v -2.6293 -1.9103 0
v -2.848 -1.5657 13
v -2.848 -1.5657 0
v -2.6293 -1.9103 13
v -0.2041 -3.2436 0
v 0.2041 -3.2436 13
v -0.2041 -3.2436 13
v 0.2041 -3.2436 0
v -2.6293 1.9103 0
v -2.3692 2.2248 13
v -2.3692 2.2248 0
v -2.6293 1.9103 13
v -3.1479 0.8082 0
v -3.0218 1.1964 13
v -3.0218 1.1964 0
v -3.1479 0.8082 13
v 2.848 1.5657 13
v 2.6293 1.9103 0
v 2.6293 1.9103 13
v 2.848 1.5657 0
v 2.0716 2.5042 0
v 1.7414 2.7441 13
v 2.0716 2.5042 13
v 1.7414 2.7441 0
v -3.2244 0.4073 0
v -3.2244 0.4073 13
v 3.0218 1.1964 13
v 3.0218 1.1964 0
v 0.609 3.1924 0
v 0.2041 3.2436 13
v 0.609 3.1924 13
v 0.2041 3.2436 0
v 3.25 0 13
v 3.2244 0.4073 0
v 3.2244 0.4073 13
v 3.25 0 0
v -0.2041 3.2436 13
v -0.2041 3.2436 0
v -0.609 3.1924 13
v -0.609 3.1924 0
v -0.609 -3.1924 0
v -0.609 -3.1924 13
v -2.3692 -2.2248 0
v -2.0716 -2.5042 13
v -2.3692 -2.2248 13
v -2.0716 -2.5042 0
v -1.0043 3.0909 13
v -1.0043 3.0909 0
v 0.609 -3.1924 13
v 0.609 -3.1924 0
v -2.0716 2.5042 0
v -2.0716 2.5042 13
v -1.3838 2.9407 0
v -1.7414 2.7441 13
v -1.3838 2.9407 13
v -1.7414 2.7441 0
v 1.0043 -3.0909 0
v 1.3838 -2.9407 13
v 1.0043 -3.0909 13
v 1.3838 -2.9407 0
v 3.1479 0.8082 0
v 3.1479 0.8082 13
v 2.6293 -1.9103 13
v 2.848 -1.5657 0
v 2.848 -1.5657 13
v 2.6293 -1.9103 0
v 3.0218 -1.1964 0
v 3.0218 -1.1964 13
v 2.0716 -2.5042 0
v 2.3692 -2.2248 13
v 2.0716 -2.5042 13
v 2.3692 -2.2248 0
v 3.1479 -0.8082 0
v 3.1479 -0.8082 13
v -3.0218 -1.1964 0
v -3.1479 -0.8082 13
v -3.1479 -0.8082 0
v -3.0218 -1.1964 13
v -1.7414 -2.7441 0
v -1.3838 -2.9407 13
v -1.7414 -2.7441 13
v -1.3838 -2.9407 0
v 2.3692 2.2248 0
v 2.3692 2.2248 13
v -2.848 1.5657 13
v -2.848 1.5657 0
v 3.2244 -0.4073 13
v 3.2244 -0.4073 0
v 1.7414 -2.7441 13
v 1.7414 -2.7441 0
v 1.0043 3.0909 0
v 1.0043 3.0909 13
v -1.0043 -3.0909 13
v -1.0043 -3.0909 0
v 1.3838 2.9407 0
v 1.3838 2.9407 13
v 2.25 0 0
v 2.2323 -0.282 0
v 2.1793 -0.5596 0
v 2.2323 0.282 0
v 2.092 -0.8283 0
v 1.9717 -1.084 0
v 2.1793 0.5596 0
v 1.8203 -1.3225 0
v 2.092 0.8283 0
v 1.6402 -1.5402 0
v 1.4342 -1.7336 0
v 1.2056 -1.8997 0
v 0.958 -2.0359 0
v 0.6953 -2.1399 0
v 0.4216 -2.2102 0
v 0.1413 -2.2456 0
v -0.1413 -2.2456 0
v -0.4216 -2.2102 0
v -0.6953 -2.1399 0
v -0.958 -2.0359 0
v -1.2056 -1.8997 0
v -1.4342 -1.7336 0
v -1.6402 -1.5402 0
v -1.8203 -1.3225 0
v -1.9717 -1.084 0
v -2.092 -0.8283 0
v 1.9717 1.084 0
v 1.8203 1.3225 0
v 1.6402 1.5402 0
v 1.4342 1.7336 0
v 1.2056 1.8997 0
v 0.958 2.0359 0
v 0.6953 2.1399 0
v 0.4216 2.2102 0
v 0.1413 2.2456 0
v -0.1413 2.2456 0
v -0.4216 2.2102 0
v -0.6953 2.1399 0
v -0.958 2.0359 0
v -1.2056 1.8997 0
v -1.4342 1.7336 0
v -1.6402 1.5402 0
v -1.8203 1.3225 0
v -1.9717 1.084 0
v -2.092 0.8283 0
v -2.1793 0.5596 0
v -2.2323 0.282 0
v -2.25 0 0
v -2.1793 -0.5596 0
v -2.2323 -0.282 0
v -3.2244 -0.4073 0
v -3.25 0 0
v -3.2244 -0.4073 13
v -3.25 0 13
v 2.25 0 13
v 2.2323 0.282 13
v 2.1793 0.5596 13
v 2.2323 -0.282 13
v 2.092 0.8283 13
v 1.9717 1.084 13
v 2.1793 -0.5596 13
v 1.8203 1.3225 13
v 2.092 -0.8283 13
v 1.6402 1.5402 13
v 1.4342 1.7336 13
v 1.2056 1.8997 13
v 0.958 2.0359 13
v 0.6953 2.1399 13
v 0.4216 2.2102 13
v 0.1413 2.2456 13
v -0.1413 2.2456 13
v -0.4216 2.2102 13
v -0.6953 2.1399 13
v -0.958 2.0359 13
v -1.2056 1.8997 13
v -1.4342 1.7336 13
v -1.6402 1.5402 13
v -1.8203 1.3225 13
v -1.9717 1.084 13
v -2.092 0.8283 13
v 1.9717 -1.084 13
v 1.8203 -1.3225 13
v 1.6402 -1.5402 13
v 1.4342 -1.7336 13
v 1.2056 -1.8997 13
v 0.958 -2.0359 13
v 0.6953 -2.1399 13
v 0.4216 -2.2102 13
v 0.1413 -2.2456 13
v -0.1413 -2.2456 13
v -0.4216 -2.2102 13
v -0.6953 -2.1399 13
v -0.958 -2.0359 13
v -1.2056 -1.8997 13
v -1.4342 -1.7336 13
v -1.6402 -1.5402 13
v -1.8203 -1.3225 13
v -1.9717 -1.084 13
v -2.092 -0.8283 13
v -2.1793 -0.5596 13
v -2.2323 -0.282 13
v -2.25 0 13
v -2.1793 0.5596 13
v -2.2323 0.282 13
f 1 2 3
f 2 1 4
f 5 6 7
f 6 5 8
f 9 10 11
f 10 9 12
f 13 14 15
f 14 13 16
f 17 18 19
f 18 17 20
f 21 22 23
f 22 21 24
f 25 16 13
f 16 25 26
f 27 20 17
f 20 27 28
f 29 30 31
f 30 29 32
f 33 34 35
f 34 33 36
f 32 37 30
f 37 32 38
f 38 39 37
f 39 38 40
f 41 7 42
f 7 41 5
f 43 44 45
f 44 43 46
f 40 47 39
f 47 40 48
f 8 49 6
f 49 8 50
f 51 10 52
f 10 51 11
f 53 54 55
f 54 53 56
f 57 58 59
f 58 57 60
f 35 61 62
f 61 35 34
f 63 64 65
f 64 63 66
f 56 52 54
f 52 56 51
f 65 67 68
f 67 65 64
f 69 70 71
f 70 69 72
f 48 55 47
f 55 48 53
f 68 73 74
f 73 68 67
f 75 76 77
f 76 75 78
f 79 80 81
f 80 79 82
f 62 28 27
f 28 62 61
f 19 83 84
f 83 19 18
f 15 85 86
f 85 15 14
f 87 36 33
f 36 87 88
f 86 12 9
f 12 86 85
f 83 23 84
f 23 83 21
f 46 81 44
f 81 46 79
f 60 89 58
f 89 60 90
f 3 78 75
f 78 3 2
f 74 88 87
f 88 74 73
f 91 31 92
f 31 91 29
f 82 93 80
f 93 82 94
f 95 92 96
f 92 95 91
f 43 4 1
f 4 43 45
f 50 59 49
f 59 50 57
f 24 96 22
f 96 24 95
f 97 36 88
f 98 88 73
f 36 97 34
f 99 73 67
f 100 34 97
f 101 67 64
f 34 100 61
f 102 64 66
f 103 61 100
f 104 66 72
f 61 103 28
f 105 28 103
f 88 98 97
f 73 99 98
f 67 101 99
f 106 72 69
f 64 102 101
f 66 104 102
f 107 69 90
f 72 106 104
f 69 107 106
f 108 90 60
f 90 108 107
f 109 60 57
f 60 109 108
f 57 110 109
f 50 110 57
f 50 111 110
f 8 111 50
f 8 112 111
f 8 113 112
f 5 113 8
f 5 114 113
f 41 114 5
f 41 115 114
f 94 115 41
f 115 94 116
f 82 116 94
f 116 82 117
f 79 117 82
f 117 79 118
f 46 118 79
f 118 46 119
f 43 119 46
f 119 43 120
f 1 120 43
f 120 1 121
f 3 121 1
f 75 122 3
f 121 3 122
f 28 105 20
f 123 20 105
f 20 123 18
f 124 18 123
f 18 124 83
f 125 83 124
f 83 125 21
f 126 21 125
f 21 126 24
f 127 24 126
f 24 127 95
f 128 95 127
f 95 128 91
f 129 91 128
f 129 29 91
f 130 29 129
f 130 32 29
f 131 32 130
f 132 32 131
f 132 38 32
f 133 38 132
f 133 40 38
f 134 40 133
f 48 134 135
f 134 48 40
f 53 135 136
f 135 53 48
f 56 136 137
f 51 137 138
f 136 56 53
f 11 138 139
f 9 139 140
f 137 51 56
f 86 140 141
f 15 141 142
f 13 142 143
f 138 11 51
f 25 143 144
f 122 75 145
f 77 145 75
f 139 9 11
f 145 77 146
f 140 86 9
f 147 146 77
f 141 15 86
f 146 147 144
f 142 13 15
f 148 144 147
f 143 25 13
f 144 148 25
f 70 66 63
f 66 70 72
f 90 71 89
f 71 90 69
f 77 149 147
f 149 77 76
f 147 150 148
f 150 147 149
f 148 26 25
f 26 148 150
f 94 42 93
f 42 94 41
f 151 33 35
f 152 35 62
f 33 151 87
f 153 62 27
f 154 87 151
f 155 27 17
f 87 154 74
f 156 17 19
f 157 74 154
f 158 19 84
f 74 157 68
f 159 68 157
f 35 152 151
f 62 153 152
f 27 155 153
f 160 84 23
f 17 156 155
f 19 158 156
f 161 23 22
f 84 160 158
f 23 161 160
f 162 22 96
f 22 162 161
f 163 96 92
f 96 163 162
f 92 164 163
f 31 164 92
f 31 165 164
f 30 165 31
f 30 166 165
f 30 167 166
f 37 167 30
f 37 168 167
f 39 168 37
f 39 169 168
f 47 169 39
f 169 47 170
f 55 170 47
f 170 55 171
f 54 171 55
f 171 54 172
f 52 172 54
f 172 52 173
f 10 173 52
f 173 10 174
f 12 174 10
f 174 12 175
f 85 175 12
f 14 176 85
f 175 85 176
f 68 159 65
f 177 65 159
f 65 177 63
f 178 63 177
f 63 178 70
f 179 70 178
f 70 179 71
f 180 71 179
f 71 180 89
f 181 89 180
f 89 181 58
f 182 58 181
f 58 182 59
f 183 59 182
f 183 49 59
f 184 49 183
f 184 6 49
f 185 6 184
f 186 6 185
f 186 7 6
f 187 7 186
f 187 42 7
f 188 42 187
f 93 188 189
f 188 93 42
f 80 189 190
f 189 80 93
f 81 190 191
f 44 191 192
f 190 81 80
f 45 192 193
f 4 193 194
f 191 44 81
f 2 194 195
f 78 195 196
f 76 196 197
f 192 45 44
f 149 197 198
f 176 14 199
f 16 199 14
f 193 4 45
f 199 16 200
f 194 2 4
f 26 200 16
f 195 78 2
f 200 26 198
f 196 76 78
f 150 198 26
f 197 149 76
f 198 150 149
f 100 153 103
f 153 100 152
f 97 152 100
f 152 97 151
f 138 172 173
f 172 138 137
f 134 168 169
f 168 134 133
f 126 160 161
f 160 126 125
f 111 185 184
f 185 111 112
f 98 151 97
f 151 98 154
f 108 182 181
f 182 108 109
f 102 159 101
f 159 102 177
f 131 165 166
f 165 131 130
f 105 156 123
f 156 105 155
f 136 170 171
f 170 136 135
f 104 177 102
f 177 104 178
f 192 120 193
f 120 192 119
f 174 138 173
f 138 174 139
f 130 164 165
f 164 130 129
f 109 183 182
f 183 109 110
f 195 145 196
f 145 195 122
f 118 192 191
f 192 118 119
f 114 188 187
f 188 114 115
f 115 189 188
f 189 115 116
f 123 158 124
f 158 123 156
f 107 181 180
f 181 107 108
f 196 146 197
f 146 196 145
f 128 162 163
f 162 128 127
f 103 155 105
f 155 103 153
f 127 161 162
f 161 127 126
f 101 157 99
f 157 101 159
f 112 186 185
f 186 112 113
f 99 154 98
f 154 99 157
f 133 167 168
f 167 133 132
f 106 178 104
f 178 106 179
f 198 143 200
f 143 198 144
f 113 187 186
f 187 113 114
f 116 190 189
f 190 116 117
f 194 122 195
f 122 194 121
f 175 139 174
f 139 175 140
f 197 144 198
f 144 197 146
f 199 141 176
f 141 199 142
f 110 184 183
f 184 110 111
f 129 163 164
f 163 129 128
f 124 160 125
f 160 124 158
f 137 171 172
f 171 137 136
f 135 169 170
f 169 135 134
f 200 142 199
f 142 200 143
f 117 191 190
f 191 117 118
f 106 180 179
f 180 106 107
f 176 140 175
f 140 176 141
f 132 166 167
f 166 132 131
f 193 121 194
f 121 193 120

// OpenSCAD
// spacer between layers on actuator platform for storing laser cable

$fn = 50;

// height: screw = 2cm
// platforms: 2mm each (2x bottom, 1x top)
// remaining height for nut: 2mm

h = 20-3*2 - 2;

h=13; // set manually
echo("h=",h);

innerdiam = 4.5;
outerdiam = 6.5;

difference(){
    cylinder(h,outerdiam/2,outerdiam/2);
    cylinder(h,innerdiam/2,innerdiam/2);
}
